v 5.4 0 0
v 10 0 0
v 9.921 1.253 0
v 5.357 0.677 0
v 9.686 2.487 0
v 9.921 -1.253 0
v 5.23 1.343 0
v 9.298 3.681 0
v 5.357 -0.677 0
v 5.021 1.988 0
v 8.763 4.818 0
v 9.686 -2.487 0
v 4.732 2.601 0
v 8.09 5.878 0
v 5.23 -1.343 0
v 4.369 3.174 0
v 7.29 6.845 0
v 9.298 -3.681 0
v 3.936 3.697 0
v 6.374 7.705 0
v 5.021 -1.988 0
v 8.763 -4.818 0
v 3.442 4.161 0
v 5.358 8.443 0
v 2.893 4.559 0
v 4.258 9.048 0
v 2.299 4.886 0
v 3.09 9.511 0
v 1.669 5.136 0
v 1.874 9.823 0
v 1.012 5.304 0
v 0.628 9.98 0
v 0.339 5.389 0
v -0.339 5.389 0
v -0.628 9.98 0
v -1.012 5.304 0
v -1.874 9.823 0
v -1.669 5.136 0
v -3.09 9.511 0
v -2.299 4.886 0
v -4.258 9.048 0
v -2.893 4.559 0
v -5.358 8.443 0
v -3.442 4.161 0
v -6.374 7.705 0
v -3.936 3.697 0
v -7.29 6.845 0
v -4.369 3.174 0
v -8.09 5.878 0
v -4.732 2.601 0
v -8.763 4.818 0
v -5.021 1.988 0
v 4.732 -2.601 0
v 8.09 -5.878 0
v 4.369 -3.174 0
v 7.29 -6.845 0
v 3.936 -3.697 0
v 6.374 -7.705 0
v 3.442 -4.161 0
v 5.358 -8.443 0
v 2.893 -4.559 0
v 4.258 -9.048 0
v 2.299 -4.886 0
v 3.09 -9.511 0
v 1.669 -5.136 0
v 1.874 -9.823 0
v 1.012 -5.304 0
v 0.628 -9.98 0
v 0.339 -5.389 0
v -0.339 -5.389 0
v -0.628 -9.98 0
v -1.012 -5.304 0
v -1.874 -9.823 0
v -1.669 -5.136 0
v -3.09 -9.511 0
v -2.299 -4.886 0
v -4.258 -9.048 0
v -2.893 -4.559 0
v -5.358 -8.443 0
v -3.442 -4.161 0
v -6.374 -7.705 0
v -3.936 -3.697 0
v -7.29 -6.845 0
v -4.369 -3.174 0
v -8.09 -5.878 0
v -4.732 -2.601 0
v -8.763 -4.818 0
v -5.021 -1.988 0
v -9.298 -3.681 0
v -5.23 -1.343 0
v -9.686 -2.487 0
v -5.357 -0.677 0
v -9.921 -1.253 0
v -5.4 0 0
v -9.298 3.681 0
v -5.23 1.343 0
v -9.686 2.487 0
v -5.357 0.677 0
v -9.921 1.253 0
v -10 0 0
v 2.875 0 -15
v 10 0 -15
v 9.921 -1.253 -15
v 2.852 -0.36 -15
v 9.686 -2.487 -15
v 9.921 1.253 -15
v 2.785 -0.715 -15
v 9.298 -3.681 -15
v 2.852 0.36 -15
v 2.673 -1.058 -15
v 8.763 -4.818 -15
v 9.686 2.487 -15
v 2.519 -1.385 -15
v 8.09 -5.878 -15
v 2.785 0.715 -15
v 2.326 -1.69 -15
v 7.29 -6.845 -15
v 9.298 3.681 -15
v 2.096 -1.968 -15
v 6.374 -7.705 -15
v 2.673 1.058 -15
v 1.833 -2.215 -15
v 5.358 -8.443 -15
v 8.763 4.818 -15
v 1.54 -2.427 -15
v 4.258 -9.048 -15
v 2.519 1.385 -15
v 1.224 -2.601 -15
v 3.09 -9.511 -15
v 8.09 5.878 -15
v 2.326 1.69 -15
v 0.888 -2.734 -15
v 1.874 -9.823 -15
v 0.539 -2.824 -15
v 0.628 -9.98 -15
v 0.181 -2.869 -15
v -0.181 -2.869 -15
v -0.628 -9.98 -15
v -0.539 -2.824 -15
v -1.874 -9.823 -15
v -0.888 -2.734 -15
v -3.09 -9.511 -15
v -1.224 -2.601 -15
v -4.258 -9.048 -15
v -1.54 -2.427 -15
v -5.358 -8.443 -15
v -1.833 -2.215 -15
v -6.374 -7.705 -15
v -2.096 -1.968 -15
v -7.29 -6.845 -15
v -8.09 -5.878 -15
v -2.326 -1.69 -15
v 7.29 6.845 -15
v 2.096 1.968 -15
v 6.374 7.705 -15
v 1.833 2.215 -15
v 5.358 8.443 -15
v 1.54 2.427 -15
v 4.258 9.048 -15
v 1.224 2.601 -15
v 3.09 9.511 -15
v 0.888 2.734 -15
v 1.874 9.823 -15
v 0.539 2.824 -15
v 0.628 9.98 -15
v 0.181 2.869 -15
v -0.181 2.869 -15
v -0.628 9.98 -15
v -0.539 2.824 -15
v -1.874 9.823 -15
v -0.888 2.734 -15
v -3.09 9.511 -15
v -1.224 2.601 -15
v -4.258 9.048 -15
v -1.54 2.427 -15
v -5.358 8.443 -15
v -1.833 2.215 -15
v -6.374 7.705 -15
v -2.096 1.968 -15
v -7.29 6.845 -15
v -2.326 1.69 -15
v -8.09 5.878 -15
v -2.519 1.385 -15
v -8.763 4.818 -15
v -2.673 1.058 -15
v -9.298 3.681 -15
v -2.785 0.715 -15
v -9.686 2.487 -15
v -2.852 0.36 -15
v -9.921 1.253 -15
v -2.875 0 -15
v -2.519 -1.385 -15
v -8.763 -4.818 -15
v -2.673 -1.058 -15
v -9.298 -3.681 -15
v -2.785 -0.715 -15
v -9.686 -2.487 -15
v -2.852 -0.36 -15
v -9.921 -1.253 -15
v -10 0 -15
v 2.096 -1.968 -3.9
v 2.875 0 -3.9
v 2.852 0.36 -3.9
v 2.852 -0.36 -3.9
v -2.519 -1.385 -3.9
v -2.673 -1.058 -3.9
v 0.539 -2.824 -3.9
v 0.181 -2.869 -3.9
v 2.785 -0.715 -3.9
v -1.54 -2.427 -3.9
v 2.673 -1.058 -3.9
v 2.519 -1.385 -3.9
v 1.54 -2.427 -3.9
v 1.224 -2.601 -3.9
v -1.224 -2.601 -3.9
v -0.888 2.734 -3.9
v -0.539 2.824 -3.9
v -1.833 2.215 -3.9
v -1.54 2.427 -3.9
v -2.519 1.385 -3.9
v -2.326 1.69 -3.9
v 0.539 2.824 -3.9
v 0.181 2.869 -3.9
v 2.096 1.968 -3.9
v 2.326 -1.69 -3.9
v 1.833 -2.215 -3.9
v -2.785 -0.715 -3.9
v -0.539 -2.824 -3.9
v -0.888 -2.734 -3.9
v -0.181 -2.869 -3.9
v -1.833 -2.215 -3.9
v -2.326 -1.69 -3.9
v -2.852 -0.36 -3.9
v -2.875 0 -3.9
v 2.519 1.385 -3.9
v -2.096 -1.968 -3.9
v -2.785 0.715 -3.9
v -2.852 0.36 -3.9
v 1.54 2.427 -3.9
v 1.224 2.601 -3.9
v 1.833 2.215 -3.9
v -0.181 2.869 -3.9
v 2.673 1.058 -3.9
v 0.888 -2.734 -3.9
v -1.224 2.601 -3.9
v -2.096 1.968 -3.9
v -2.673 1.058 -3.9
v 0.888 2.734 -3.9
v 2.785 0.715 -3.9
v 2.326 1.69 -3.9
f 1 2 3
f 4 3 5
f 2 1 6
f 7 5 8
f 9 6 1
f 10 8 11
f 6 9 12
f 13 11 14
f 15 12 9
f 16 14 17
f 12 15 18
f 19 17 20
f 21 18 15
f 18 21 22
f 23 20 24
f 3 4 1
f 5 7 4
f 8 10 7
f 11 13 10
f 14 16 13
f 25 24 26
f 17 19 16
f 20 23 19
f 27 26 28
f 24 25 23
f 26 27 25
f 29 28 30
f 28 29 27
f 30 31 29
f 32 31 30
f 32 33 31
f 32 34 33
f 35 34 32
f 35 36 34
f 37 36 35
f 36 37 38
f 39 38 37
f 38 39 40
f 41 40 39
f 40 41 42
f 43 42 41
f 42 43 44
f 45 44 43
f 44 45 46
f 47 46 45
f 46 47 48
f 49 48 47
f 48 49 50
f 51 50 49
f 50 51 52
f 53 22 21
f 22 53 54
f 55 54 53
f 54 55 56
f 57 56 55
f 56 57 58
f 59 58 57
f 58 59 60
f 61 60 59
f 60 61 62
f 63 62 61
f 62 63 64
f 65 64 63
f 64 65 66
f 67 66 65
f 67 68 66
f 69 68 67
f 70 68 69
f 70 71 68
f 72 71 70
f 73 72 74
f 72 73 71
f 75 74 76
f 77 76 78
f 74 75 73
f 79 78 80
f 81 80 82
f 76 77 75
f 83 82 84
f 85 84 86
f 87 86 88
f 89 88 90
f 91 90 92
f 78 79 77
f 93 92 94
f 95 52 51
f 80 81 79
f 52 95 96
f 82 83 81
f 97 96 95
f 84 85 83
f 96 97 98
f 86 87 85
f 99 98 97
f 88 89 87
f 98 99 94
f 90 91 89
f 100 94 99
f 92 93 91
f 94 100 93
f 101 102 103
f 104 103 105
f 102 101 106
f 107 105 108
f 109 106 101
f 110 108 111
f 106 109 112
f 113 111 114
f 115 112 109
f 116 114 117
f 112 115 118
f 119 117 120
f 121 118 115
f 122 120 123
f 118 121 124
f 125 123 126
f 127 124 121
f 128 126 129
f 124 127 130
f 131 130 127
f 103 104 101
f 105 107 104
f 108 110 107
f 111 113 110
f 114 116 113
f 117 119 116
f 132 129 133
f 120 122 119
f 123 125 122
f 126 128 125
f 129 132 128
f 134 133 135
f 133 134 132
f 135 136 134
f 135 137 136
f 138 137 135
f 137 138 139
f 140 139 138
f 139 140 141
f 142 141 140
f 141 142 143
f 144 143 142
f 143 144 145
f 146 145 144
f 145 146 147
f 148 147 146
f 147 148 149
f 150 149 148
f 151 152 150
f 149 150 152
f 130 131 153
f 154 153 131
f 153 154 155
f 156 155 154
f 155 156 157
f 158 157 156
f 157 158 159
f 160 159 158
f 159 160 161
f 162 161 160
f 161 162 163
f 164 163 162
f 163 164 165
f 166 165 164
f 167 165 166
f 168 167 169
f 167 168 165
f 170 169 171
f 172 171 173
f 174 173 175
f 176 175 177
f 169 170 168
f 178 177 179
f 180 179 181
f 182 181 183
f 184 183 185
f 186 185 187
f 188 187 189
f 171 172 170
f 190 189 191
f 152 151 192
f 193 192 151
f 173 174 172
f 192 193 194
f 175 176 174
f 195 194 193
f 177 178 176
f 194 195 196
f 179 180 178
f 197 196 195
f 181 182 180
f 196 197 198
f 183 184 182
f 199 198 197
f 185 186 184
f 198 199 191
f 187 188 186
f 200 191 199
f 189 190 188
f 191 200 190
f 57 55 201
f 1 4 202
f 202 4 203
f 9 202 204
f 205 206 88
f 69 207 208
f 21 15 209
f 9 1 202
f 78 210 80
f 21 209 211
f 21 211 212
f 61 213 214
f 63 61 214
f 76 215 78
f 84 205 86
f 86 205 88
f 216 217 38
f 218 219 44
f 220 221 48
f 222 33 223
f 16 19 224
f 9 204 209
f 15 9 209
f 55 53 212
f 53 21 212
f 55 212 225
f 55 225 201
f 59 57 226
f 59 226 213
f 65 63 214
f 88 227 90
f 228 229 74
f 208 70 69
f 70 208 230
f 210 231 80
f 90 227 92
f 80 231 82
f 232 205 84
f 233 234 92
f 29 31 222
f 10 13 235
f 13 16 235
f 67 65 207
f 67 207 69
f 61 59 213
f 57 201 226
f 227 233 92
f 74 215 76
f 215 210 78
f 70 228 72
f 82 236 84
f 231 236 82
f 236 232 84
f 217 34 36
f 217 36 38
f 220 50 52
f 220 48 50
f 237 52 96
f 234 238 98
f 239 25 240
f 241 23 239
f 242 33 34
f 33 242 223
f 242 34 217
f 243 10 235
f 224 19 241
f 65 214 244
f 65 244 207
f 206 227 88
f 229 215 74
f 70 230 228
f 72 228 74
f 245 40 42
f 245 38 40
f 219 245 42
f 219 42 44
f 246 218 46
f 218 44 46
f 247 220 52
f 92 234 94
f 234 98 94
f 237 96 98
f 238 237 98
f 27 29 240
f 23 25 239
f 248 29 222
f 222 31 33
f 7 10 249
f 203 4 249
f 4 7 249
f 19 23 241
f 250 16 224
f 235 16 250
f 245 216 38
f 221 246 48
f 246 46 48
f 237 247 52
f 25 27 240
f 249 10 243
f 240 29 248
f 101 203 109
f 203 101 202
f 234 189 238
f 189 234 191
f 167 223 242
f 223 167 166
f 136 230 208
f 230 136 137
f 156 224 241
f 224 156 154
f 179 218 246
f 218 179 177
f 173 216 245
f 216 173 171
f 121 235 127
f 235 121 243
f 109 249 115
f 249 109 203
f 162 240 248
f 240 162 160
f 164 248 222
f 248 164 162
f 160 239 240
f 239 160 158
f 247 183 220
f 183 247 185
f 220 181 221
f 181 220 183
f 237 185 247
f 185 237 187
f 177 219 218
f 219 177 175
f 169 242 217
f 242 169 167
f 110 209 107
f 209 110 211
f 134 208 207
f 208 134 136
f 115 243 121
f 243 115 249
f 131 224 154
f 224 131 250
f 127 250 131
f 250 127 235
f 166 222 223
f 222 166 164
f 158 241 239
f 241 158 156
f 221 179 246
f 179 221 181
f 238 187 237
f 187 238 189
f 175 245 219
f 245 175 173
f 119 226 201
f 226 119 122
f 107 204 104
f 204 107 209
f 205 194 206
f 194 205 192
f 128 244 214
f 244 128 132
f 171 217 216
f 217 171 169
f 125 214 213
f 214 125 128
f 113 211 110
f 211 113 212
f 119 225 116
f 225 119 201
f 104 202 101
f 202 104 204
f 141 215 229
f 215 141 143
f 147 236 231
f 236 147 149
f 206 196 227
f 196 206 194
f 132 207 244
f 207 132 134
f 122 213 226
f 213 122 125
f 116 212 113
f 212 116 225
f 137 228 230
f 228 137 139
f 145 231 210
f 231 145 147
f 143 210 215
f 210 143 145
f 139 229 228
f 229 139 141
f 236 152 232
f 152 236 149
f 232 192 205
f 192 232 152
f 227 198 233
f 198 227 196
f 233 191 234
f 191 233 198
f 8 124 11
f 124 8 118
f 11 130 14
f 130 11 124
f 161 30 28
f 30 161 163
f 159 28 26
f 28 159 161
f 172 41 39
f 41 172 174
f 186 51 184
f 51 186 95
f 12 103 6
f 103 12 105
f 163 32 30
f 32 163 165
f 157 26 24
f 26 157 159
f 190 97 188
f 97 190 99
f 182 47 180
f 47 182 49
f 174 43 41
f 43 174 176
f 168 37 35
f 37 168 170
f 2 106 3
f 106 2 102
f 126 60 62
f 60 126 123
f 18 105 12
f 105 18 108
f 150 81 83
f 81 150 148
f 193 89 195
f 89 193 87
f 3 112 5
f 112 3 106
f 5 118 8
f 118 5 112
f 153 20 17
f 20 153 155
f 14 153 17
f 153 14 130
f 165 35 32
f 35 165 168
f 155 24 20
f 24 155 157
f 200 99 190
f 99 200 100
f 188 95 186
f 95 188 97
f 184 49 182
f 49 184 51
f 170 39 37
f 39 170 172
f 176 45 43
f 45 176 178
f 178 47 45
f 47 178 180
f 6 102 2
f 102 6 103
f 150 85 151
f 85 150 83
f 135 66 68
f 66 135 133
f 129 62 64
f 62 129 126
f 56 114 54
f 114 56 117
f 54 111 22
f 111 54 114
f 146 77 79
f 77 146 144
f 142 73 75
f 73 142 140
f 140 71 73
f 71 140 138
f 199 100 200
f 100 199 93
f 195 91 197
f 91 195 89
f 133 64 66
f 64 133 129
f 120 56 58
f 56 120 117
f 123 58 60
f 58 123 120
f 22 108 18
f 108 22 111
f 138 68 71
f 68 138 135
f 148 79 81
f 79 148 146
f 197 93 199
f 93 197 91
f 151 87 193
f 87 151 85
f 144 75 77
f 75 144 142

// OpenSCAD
$fn = 50;


difference() {
	union() {
		translate(v = [0, 0, -15.0000000000]) {
			cylinder(h = 15, r = 10.0000000000);
		}
		cylinder(h = 0, r = 19.0000000000);
	}
	union() {
		translate(v = [0, 0, 0]) {
			rotate(a = [0, 0, 0]) {
				difference() {
					union() {
						#translate(v = [0, 0, -15.0000000000]) {
							cylinder(h = 15, r = 2.6000000000);
						}
						#translate(v = [0, 0, -3.9000000000]) {
							cylinder(h = 3.9000000000, r1 = 2.8750000000, r2 = 5.4000000000);
						}
						#translate(v = [0, 0, -15.0000000000]) {
							cylinder(h = 15, r = 2.8750000000);
						}
						#translate(v = [0, 0, -15.0000000000]) {
							cylinder(h = 15, r = 2.6000000000);
						}
					}
					union();
				}
			}
		}
	}
}
